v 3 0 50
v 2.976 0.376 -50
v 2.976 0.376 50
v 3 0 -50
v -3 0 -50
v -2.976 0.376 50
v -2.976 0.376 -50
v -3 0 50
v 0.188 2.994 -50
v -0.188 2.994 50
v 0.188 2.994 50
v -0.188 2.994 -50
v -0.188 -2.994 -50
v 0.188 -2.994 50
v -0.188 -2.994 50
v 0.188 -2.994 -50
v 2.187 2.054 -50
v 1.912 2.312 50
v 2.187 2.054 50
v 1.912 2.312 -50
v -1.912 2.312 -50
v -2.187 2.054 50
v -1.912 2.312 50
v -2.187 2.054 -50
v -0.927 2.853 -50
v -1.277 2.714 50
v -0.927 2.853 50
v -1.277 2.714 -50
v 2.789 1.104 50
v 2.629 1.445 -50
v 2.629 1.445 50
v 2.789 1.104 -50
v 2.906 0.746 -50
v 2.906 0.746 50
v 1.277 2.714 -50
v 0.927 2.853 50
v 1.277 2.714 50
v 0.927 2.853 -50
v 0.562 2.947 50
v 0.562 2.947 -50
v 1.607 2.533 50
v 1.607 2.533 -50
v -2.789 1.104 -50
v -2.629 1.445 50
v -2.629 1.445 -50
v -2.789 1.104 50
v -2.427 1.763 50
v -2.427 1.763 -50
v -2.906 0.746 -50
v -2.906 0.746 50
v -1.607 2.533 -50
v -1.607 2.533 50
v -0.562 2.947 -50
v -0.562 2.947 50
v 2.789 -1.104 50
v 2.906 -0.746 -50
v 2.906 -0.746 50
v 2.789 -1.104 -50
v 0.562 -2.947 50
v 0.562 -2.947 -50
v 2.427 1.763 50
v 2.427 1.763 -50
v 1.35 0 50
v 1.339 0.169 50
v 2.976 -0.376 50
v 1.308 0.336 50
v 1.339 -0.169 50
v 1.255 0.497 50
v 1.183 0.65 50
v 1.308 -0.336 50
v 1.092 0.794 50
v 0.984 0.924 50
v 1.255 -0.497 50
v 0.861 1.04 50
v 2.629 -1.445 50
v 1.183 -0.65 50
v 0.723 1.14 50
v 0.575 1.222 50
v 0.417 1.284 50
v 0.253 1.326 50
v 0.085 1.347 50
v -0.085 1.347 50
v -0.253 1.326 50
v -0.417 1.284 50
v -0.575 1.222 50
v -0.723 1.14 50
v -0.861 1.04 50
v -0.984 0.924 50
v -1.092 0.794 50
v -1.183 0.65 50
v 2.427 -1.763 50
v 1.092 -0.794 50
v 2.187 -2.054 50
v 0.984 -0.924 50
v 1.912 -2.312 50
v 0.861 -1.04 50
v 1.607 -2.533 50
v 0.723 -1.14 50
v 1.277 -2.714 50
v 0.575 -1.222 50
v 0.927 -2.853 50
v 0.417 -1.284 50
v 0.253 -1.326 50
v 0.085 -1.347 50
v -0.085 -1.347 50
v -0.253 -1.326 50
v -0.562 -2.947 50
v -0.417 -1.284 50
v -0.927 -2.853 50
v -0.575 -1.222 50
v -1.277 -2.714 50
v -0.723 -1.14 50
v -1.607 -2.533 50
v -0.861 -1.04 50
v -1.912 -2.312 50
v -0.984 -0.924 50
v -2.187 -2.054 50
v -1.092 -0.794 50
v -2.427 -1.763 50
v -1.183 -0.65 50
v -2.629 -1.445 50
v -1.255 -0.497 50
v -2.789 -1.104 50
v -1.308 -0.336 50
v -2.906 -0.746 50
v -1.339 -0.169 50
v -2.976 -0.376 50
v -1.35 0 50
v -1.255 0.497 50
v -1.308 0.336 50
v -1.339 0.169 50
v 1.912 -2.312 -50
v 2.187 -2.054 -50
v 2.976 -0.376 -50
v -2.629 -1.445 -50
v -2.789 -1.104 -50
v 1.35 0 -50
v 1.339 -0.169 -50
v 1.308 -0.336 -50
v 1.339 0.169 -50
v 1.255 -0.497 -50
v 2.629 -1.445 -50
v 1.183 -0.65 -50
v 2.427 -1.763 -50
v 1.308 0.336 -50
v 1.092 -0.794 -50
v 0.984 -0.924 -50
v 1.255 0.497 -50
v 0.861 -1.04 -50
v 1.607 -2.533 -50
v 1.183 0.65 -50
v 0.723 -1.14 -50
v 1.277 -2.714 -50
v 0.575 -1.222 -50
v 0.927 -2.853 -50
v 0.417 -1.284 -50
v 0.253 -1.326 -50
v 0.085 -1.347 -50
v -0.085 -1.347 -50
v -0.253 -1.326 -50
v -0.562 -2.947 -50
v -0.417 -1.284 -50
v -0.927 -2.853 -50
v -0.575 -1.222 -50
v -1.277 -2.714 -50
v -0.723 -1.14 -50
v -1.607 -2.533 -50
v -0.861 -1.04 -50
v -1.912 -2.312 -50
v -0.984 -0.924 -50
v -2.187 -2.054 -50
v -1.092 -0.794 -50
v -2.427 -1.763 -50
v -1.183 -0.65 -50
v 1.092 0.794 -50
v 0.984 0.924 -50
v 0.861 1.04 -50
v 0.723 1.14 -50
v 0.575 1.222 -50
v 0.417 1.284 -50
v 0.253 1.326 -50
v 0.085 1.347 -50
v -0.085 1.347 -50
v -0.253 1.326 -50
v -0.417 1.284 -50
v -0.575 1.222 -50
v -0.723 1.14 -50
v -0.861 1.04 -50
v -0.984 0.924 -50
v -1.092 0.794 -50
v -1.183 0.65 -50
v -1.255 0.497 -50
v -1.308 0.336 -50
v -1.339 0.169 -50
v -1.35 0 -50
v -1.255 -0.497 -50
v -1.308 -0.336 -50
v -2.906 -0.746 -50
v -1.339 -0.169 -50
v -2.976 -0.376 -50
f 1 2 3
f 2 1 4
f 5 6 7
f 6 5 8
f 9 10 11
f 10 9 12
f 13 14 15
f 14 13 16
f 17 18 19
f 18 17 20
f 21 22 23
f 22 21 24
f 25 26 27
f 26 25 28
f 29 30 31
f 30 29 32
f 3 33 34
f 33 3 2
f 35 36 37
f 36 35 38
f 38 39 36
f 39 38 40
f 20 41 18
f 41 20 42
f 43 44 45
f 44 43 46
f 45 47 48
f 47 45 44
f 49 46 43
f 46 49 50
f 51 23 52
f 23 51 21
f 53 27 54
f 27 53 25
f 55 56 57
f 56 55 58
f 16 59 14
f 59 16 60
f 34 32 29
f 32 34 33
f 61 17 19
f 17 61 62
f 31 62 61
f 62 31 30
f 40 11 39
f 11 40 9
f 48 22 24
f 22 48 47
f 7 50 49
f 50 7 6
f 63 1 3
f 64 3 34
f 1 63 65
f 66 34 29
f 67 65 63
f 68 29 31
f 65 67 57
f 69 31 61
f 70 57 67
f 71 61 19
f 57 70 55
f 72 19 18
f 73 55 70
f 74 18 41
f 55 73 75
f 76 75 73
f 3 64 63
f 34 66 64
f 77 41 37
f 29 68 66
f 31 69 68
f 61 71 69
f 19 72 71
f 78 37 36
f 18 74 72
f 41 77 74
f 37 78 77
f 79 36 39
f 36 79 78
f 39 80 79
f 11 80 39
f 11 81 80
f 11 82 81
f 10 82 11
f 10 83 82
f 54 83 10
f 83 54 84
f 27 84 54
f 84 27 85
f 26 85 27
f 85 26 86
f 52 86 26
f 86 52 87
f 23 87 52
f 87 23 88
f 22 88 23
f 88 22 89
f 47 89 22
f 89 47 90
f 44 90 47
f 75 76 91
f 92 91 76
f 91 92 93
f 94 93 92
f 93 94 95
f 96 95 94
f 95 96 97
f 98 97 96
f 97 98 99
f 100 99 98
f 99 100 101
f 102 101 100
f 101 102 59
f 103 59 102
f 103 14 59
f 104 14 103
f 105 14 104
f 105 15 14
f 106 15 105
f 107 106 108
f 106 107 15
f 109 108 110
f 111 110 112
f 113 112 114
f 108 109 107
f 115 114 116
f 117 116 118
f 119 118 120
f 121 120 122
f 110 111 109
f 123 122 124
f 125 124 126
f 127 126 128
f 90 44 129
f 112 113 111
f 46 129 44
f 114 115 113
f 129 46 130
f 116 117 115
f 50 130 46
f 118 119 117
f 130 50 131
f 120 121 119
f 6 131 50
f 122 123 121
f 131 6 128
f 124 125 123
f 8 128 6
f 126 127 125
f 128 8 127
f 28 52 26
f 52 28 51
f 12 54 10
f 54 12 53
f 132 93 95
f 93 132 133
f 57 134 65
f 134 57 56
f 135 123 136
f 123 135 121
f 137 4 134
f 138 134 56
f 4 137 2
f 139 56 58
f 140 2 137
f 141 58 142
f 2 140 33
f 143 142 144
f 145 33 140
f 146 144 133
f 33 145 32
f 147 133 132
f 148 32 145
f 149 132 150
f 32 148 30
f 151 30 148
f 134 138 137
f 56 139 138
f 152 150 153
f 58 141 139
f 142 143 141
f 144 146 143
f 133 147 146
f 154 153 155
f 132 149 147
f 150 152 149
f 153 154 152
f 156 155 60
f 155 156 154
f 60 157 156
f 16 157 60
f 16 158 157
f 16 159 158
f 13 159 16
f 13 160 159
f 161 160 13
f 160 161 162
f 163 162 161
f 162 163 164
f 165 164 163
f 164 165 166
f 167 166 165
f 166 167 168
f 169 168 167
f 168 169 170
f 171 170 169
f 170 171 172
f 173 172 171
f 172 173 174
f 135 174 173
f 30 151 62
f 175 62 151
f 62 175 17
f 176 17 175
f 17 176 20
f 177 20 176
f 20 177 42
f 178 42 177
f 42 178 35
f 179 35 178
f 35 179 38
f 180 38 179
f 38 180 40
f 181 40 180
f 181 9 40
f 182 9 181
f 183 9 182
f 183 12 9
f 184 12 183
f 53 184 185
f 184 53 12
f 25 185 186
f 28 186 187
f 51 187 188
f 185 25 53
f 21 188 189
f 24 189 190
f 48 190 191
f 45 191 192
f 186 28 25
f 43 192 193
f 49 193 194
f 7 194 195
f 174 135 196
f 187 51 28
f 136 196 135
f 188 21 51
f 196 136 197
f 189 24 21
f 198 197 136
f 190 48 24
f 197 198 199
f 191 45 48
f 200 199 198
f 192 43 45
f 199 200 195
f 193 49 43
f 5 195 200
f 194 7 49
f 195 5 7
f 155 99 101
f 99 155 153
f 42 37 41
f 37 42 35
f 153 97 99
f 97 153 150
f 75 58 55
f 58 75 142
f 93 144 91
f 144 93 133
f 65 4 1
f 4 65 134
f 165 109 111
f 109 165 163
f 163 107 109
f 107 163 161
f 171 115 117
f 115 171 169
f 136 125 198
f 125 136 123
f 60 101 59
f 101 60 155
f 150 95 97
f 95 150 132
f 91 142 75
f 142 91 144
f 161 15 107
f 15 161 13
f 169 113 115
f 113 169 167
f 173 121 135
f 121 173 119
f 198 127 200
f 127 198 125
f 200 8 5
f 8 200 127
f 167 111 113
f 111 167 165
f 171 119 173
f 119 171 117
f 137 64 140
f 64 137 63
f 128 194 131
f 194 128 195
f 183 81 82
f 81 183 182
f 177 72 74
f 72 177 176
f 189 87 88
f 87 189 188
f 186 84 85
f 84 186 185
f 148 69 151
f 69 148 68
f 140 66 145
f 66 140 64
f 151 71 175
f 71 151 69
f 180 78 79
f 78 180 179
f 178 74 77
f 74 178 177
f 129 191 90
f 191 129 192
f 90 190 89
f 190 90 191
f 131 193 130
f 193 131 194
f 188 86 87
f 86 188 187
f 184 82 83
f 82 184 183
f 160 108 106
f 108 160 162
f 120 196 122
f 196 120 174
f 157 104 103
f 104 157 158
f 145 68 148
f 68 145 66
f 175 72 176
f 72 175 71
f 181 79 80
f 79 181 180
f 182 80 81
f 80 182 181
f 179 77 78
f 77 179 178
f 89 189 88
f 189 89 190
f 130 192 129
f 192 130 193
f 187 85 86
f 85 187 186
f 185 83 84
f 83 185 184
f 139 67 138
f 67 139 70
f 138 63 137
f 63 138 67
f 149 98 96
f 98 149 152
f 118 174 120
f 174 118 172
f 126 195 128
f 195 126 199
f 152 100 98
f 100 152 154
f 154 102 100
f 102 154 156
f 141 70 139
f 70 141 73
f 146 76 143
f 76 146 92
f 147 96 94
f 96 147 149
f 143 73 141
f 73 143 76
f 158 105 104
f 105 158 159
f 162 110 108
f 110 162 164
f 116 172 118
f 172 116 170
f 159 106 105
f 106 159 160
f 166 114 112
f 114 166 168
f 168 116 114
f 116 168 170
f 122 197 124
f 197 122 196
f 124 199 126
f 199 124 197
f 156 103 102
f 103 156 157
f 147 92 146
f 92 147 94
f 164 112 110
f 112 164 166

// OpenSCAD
$fn = 50;


difference() {
	union() {
		translate(v = [0, 0, -50.0000000000]) {
			cylinder(h = 100, r = 3.0000000000);
		}
	}
	union() {
		translate(v = [0, 0, -100.0000000000]) {
			cylinder(h = 200, r = 1.3500000000);
		}
	}
}
